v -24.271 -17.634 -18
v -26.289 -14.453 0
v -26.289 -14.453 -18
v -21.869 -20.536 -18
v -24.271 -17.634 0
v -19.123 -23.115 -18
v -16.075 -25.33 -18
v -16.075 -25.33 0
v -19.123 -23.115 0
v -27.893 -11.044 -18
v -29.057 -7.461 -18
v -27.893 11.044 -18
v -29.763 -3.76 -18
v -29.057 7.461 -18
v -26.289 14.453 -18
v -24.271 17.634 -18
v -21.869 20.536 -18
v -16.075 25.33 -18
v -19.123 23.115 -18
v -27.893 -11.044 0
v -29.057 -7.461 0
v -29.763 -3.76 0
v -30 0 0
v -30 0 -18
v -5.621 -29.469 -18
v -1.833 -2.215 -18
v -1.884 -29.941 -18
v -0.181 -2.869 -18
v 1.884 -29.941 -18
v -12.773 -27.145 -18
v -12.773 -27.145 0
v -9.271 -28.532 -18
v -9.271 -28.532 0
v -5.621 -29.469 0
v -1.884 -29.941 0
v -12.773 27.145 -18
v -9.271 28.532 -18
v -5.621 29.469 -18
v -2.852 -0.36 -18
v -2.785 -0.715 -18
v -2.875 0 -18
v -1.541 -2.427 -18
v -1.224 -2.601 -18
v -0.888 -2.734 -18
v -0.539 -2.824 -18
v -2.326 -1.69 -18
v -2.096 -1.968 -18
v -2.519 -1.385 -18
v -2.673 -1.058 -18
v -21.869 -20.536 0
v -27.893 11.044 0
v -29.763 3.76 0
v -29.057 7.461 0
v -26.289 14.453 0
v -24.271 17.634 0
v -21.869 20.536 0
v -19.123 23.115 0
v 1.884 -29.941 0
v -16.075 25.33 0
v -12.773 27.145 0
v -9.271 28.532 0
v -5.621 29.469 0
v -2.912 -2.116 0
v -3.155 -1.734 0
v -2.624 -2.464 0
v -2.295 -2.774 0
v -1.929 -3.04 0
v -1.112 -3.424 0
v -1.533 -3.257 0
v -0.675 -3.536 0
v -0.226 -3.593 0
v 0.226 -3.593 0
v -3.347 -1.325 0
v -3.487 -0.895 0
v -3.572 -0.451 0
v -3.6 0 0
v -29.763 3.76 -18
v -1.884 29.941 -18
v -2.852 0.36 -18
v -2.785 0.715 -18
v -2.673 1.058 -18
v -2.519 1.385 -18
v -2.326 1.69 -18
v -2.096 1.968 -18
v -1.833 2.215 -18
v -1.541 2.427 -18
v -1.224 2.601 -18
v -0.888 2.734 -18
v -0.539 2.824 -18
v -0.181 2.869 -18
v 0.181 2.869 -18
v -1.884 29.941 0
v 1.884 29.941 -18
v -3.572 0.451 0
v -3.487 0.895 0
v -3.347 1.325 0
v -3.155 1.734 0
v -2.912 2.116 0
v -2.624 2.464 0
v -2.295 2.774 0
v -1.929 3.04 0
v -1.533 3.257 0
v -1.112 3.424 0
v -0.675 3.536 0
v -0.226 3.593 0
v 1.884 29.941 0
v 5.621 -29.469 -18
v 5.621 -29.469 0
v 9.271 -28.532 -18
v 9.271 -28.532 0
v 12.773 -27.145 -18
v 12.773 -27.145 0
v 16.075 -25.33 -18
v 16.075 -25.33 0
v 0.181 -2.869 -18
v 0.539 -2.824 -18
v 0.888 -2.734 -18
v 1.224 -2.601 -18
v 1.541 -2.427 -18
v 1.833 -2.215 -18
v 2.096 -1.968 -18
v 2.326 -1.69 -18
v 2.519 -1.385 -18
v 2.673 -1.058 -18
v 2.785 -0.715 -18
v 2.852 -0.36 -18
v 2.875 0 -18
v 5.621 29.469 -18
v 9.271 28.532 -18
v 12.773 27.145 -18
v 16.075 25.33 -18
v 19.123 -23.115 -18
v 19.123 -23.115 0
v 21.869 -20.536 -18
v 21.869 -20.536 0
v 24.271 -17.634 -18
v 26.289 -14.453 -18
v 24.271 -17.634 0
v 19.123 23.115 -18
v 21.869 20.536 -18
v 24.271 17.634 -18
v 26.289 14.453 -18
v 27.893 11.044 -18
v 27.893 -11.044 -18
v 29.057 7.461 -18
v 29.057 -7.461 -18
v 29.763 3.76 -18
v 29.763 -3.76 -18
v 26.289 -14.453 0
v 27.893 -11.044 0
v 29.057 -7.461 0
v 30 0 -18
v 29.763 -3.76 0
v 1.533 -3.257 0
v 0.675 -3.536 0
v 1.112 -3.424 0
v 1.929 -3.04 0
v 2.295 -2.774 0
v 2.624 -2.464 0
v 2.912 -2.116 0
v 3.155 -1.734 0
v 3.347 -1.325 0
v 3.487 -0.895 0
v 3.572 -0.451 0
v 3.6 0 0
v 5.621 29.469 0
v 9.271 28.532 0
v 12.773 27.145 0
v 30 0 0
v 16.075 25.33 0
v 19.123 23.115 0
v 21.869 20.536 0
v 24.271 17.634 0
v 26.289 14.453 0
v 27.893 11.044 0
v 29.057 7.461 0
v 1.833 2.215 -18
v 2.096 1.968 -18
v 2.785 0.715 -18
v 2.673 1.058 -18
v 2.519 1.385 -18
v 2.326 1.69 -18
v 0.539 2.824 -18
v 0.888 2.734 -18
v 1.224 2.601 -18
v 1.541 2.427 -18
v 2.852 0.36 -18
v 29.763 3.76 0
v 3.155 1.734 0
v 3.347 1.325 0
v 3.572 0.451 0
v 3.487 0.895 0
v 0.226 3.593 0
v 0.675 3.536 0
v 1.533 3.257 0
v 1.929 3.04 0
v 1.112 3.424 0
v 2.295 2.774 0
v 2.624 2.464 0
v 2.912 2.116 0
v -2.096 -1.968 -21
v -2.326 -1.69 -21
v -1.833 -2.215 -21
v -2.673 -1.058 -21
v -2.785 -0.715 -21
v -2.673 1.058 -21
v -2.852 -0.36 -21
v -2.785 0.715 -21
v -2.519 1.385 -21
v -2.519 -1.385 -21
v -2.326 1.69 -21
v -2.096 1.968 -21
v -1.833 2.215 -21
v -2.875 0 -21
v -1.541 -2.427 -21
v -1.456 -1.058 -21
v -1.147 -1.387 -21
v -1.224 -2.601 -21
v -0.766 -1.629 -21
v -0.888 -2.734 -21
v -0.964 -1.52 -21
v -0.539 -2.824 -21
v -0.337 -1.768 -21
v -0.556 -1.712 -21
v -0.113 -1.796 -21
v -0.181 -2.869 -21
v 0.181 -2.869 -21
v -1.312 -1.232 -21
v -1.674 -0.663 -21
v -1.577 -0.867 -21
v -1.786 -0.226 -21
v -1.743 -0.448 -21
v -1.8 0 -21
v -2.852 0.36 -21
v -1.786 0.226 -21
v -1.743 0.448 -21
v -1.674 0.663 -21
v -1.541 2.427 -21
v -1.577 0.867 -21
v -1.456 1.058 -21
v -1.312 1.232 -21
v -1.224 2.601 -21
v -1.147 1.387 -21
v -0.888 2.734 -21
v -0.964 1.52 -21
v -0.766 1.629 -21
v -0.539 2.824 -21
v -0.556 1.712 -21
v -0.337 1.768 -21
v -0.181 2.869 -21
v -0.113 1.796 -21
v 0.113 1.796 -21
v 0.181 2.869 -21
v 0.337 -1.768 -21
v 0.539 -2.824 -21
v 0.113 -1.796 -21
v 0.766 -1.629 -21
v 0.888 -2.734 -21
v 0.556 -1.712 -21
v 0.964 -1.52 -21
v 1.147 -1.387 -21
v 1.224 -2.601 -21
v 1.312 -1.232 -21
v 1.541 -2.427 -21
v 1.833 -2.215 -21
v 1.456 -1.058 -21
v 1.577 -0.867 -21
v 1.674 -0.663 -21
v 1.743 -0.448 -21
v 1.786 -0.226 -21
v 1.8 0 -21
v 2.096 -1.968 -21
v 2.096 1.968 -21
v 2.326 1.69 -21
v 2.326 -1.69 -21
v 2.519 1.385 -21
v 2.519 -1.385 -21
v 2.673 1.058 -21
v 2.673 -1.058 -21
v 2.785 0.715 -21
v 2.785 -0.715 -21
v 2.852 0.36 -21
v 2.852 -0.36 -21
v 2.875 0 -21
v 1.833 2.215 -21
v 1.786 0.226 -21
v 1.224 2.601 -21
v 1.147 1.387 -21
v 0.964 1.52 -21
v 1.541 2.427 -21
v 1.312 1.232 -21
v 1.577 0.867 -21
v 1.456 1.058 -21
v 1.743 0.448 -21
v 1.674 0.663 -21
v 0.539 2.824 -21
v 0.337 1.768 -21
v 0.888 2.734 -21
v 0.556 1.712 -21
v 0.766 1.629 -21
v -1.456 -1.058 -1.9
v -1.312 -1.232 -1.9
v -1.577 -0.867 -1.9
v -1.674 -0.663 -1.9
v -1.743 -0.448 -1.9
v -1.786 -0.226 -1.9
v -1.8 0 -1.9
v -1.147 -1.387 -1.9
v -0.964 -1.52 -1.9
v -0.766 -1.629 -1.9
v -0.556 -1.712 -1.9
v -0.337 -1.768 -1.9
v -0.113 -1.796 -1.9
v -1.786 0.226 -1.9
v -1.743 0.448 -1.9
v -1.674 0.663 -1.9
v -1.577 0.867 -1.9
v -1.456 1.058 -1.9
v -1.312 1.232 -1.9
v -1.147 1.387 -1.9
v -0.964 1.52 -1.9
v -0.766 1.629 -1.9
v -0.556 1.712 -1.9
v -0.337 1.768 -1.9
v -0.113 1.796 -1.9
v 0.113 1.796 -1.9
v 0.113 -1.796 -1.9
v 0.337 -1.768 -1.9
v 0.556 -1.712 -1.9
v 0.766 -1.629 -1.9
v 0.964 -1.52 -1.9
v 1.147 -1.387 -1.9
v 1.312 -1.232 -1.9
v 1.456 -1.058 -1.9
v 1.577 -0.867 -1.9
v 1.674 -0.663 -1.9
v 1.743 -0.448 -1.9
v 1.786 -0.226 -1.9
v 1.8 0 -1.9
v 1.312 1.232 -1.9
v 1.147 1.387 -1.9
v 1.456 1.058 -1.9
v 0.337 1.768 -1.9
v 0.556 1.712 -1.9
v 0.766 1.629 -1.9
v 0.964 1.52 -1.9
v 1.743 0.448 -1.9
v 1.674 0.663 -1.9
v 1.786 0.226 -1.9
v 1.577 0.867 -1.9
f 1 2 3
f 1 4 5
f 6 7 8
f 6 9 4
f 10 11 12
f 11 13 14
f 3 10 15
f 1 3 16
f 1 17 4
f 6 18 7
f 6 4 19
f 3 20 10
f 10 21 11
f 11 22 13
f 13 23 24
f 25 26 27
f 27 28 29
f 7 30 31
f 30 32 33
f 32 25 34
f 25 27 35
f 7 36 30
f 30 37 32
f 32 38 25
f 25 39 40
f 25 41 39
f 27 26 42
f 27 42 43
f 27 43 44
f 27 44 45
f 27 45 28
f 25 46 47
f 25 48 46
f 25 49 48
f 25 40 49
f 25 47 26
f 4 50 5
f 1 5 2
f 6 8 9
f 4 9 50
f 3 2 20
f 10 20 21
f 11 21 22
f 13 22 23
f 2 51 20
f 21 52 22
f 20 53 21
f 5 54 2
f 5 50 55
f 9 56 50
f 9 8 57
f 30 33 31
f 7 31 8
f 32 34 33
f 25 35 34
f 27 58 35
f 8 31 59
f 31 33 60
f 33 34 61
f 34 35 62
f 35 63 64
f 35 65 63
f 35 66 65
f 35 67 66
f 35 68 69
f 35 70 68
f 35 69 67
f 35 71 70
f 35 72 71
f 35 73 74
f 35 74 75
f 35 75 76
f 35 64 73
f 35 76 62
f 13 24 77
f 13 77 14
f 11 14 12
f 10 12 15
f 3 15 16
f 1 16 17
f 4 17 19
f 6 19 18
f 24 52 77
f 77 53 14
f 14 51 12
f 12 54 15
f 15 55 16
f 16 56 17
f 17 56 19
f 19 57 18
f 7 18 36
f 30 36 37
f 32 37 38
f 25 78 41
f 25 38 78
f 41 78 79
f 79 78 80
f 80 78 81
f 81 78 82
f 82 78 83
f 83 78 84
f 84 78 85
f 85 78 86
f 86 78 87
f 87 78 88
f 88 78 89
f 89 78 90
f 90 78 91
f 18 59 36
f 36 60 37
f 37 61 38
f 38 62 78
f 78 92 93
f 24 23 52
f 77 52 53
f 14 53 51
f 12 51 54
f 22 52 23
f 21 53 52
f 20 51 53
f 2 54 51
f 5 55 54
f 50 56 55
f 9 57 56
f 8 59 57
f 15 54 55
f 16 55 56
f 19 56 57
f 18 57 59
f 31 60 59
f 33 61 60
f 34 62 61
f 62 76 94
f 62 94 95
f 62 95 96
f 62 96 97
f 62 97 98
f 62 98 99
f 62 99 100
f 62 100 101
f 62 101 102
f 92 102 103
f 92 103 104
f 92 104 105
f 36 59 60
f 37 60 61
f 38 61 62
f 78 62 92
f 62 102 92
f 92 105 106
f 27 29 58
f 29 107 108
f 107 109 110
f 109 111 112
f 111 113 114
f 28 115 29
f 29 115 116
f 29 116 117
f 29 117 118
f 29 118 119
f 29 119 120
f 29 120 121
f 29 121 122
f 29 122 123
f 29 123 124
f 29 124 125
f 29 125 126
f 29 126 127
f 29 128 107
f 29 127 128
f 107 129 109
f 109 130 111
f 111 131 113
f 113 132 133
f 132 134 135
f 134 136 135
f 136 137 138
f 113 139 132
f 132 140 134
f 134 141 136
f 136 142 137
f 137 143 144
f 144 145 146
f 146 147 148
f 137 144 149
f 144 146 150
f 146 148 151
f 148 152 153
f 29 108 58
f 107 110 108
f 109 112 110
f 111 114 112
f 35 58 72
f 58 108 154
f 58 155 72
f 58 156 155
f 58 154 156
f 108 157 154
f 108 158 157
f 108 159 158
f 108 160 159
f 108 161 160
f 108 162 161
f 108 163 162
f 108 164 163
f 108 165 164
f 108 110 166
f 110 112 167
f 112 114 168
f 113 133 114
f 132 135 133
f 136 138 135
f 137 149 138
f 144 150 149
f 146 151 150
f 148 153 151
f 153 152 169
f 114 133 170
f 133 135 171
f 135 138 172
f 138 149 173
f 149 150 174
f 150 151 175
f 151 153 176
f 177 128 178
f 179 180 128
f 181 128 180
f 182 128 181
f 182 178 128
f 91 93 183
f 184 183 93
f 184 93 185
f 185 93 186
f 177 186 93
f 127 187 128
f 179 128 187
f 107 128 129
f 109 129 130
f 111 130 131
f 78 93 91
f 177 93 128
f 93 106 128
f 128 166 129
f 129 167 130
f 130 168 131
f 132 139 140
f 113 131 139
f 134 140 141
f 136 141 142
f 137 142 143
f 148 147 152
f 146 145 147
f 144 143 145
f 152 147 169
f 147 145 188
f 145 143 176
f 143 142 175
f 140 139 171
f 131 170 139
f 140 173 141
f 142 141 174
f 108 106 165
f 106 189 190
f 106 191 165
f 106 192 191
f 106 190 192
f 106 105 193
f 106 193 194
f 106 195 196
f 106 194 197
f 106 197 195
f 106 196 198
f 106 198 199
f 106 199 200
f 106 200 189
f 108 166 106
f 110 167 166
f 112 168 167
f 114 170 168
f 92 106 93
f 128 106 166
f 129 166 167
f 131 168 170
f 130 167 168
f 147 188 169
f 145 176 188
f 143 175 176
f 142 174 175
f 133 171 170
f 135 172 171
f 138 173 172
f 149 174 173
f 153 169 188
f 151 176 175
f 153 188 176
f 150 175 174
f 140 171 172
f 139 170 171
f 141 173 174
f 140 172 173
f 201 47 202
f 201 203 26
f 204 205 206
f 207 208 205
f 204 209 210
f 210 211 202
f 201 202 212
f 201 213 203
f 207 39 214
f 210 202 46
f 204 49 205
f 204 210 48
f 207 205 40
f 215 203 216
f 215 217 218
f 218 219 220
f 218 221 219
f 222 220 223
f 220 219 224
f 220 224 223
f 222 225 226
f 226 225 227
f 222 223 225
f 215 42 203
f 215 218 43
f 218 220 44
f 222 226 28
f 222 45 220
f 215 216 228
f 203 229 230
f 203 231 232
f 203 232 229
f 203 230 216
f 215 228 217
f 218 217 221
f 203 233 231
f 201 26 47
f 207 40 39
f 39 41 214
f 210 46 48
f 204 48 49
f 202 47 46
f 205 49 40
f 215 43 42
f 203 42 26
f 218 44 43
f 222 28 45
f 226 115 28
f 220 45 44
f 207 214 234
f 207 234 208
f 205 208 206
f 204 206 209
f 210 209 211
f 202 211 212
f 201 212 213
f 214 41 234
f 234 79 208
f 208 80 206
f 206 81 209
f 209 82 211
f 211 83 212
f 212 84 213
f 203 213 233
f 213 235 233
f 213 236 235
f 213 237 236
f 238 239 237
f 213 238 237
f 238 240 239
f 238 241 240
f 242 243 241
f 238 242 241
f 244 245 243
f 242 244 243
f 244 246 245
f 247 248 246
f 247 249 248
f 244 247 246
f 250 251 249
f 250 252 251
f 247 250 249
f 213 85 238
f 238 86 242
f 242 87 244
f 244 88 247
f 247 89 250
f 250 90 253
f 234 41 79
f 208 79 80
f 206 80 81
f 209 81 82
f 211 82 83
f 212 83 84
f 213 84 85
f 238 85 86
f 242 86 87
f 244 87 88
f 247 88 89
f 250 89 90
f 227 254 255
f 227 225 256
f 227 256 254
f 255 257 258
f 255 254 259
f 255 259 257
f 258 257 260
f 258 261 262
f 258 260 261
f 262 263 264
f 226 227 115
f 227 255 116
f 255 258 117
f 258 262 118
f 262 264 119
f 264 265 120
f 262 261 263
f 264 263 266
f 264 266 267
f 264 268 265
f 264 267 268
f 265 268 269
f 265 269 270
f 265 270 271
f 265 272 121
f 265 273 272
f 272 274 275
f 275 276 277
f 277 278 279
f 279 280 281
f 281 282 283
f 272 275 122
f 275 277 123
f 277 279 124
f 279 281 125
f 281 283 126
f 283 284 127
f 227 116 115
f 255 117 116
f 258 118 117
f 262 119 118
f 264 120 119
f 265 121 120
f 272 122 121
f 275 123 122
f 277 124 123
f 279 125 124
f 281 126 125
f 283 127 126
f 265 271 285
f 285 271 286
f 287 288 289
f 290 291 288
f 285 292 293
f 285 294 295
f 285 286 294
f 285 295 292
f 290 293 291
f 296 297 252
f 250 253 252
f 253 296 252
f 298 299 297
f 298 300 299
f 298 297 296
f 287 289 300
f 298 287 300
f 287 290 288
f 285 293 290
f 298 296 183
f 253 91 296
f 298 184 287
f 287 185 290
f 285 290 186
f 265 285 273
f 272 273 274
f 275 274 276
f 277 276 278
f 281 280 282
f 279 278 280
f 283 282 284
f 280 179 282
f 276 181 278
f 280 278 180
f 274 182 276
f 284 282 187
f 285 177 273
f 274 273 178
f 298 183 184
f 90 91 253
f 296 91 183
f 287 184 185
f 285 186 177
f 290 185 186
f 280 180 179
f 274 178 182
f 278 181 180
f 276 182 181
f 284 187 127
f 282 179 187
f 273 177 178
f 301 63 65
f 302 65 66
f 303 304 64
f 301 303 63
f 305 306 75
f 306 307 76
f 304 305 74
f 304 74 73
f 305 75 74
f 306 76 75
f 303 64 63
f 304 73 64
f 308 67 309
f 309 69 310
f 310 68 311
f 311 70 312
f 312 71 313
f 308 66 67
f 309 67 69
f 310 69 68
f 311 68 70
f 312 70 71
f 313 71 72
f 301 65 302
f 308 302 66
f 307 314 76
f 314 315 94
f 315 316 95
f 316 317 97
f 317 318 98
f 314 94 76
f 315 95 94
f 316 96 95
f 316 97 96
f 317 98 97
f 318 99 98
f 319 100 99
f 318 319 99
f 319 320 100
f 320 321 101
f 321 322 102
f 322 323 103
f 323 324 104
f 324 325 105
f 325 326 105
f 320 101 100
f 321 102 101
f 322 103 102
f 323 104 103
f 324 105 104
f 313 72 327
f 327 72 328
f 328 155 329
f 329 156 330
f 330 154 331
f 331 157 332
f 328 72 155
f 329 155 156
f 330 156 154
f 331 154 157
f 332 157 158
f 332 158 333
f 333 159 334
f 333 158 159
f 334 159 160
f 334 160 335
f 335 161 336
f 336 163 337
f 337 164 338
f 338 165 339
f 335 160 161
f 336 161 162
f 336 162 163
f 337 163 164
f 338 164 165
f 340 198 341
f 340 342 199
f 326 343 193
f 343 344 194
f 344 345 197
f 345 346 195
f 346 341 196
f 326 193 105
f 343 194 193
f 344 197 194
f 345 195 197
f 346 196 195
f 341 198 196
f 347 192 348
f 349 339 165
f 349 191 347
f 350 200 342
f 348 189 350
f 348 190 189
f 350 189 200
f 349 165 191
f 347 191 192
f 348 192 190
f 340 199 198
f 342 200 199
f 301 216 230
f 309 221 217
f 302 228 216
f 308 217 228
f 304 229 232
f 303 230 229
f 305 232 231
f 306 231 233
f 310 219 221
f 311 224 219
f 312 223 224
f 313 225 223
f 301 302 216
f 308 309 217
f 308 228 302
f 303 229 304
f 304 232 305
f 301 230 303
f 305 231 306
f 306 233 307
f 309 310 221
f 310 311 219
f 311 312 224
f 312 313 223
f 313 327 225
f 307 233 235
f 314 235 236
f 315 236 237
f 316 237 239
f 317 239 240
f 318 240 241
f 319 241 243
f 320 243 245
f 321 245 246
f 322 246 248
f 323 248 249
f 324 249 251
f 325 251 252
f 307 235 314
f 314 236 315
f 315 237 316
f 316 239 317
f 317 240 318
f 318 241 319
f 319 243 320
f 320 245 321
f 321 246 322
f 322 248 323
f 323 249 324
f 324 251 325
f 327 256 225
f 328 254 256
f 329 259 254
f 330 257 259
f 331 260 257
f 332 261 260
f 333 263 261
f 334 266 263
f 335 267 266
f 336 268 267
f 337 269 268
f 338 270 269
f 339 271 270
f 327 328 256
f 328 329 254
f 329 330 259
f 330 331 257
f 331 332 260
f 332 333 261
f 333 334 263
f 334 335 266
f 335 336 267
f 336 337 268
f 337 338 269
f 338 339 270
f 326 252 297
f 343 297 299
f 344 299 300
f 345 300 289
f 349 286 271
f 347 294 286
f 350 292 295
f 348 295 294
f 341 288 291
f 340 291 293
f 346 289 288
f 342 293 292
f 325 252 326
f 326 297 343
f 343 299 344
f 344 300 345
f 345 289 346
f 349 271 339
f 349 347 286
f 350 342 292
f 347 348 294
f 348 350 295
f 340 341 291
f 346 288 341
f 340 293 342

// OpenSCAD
$fn = 50;

difference() {
	union() {
		translate(v = [0, 0, -18.0]) {
			cylinder(h = 18, r = 30.0);
		}
		#translate(v = [0, 0, -21.0]) {
			cylinder(h = 21, r = 2.875);
		}
	}
	union() {
		translate(v = [0, 0, 0]) {
			rotate(a = [0, 0, 0]) {
				difference() {
					union() {
						translate(v = [0, 0, -21.0]) {
							cylinder(h = 21, r = 1.5);
						}
						translate(v = [0, 0, -1.9]) {
							cylinder(h = 1.9, r1 = 1.8, r2 = 3.6);
						}
						translate(v = [0, 0, -21.0]) {
							cylinder(h = 21, r = 1.8);
						}
						translate(v = [0, 0, -21.0]) {
							cylinder(h = 21, r = 1.5);
						}
					}
					union();
				}
			}
		}
	}
}
